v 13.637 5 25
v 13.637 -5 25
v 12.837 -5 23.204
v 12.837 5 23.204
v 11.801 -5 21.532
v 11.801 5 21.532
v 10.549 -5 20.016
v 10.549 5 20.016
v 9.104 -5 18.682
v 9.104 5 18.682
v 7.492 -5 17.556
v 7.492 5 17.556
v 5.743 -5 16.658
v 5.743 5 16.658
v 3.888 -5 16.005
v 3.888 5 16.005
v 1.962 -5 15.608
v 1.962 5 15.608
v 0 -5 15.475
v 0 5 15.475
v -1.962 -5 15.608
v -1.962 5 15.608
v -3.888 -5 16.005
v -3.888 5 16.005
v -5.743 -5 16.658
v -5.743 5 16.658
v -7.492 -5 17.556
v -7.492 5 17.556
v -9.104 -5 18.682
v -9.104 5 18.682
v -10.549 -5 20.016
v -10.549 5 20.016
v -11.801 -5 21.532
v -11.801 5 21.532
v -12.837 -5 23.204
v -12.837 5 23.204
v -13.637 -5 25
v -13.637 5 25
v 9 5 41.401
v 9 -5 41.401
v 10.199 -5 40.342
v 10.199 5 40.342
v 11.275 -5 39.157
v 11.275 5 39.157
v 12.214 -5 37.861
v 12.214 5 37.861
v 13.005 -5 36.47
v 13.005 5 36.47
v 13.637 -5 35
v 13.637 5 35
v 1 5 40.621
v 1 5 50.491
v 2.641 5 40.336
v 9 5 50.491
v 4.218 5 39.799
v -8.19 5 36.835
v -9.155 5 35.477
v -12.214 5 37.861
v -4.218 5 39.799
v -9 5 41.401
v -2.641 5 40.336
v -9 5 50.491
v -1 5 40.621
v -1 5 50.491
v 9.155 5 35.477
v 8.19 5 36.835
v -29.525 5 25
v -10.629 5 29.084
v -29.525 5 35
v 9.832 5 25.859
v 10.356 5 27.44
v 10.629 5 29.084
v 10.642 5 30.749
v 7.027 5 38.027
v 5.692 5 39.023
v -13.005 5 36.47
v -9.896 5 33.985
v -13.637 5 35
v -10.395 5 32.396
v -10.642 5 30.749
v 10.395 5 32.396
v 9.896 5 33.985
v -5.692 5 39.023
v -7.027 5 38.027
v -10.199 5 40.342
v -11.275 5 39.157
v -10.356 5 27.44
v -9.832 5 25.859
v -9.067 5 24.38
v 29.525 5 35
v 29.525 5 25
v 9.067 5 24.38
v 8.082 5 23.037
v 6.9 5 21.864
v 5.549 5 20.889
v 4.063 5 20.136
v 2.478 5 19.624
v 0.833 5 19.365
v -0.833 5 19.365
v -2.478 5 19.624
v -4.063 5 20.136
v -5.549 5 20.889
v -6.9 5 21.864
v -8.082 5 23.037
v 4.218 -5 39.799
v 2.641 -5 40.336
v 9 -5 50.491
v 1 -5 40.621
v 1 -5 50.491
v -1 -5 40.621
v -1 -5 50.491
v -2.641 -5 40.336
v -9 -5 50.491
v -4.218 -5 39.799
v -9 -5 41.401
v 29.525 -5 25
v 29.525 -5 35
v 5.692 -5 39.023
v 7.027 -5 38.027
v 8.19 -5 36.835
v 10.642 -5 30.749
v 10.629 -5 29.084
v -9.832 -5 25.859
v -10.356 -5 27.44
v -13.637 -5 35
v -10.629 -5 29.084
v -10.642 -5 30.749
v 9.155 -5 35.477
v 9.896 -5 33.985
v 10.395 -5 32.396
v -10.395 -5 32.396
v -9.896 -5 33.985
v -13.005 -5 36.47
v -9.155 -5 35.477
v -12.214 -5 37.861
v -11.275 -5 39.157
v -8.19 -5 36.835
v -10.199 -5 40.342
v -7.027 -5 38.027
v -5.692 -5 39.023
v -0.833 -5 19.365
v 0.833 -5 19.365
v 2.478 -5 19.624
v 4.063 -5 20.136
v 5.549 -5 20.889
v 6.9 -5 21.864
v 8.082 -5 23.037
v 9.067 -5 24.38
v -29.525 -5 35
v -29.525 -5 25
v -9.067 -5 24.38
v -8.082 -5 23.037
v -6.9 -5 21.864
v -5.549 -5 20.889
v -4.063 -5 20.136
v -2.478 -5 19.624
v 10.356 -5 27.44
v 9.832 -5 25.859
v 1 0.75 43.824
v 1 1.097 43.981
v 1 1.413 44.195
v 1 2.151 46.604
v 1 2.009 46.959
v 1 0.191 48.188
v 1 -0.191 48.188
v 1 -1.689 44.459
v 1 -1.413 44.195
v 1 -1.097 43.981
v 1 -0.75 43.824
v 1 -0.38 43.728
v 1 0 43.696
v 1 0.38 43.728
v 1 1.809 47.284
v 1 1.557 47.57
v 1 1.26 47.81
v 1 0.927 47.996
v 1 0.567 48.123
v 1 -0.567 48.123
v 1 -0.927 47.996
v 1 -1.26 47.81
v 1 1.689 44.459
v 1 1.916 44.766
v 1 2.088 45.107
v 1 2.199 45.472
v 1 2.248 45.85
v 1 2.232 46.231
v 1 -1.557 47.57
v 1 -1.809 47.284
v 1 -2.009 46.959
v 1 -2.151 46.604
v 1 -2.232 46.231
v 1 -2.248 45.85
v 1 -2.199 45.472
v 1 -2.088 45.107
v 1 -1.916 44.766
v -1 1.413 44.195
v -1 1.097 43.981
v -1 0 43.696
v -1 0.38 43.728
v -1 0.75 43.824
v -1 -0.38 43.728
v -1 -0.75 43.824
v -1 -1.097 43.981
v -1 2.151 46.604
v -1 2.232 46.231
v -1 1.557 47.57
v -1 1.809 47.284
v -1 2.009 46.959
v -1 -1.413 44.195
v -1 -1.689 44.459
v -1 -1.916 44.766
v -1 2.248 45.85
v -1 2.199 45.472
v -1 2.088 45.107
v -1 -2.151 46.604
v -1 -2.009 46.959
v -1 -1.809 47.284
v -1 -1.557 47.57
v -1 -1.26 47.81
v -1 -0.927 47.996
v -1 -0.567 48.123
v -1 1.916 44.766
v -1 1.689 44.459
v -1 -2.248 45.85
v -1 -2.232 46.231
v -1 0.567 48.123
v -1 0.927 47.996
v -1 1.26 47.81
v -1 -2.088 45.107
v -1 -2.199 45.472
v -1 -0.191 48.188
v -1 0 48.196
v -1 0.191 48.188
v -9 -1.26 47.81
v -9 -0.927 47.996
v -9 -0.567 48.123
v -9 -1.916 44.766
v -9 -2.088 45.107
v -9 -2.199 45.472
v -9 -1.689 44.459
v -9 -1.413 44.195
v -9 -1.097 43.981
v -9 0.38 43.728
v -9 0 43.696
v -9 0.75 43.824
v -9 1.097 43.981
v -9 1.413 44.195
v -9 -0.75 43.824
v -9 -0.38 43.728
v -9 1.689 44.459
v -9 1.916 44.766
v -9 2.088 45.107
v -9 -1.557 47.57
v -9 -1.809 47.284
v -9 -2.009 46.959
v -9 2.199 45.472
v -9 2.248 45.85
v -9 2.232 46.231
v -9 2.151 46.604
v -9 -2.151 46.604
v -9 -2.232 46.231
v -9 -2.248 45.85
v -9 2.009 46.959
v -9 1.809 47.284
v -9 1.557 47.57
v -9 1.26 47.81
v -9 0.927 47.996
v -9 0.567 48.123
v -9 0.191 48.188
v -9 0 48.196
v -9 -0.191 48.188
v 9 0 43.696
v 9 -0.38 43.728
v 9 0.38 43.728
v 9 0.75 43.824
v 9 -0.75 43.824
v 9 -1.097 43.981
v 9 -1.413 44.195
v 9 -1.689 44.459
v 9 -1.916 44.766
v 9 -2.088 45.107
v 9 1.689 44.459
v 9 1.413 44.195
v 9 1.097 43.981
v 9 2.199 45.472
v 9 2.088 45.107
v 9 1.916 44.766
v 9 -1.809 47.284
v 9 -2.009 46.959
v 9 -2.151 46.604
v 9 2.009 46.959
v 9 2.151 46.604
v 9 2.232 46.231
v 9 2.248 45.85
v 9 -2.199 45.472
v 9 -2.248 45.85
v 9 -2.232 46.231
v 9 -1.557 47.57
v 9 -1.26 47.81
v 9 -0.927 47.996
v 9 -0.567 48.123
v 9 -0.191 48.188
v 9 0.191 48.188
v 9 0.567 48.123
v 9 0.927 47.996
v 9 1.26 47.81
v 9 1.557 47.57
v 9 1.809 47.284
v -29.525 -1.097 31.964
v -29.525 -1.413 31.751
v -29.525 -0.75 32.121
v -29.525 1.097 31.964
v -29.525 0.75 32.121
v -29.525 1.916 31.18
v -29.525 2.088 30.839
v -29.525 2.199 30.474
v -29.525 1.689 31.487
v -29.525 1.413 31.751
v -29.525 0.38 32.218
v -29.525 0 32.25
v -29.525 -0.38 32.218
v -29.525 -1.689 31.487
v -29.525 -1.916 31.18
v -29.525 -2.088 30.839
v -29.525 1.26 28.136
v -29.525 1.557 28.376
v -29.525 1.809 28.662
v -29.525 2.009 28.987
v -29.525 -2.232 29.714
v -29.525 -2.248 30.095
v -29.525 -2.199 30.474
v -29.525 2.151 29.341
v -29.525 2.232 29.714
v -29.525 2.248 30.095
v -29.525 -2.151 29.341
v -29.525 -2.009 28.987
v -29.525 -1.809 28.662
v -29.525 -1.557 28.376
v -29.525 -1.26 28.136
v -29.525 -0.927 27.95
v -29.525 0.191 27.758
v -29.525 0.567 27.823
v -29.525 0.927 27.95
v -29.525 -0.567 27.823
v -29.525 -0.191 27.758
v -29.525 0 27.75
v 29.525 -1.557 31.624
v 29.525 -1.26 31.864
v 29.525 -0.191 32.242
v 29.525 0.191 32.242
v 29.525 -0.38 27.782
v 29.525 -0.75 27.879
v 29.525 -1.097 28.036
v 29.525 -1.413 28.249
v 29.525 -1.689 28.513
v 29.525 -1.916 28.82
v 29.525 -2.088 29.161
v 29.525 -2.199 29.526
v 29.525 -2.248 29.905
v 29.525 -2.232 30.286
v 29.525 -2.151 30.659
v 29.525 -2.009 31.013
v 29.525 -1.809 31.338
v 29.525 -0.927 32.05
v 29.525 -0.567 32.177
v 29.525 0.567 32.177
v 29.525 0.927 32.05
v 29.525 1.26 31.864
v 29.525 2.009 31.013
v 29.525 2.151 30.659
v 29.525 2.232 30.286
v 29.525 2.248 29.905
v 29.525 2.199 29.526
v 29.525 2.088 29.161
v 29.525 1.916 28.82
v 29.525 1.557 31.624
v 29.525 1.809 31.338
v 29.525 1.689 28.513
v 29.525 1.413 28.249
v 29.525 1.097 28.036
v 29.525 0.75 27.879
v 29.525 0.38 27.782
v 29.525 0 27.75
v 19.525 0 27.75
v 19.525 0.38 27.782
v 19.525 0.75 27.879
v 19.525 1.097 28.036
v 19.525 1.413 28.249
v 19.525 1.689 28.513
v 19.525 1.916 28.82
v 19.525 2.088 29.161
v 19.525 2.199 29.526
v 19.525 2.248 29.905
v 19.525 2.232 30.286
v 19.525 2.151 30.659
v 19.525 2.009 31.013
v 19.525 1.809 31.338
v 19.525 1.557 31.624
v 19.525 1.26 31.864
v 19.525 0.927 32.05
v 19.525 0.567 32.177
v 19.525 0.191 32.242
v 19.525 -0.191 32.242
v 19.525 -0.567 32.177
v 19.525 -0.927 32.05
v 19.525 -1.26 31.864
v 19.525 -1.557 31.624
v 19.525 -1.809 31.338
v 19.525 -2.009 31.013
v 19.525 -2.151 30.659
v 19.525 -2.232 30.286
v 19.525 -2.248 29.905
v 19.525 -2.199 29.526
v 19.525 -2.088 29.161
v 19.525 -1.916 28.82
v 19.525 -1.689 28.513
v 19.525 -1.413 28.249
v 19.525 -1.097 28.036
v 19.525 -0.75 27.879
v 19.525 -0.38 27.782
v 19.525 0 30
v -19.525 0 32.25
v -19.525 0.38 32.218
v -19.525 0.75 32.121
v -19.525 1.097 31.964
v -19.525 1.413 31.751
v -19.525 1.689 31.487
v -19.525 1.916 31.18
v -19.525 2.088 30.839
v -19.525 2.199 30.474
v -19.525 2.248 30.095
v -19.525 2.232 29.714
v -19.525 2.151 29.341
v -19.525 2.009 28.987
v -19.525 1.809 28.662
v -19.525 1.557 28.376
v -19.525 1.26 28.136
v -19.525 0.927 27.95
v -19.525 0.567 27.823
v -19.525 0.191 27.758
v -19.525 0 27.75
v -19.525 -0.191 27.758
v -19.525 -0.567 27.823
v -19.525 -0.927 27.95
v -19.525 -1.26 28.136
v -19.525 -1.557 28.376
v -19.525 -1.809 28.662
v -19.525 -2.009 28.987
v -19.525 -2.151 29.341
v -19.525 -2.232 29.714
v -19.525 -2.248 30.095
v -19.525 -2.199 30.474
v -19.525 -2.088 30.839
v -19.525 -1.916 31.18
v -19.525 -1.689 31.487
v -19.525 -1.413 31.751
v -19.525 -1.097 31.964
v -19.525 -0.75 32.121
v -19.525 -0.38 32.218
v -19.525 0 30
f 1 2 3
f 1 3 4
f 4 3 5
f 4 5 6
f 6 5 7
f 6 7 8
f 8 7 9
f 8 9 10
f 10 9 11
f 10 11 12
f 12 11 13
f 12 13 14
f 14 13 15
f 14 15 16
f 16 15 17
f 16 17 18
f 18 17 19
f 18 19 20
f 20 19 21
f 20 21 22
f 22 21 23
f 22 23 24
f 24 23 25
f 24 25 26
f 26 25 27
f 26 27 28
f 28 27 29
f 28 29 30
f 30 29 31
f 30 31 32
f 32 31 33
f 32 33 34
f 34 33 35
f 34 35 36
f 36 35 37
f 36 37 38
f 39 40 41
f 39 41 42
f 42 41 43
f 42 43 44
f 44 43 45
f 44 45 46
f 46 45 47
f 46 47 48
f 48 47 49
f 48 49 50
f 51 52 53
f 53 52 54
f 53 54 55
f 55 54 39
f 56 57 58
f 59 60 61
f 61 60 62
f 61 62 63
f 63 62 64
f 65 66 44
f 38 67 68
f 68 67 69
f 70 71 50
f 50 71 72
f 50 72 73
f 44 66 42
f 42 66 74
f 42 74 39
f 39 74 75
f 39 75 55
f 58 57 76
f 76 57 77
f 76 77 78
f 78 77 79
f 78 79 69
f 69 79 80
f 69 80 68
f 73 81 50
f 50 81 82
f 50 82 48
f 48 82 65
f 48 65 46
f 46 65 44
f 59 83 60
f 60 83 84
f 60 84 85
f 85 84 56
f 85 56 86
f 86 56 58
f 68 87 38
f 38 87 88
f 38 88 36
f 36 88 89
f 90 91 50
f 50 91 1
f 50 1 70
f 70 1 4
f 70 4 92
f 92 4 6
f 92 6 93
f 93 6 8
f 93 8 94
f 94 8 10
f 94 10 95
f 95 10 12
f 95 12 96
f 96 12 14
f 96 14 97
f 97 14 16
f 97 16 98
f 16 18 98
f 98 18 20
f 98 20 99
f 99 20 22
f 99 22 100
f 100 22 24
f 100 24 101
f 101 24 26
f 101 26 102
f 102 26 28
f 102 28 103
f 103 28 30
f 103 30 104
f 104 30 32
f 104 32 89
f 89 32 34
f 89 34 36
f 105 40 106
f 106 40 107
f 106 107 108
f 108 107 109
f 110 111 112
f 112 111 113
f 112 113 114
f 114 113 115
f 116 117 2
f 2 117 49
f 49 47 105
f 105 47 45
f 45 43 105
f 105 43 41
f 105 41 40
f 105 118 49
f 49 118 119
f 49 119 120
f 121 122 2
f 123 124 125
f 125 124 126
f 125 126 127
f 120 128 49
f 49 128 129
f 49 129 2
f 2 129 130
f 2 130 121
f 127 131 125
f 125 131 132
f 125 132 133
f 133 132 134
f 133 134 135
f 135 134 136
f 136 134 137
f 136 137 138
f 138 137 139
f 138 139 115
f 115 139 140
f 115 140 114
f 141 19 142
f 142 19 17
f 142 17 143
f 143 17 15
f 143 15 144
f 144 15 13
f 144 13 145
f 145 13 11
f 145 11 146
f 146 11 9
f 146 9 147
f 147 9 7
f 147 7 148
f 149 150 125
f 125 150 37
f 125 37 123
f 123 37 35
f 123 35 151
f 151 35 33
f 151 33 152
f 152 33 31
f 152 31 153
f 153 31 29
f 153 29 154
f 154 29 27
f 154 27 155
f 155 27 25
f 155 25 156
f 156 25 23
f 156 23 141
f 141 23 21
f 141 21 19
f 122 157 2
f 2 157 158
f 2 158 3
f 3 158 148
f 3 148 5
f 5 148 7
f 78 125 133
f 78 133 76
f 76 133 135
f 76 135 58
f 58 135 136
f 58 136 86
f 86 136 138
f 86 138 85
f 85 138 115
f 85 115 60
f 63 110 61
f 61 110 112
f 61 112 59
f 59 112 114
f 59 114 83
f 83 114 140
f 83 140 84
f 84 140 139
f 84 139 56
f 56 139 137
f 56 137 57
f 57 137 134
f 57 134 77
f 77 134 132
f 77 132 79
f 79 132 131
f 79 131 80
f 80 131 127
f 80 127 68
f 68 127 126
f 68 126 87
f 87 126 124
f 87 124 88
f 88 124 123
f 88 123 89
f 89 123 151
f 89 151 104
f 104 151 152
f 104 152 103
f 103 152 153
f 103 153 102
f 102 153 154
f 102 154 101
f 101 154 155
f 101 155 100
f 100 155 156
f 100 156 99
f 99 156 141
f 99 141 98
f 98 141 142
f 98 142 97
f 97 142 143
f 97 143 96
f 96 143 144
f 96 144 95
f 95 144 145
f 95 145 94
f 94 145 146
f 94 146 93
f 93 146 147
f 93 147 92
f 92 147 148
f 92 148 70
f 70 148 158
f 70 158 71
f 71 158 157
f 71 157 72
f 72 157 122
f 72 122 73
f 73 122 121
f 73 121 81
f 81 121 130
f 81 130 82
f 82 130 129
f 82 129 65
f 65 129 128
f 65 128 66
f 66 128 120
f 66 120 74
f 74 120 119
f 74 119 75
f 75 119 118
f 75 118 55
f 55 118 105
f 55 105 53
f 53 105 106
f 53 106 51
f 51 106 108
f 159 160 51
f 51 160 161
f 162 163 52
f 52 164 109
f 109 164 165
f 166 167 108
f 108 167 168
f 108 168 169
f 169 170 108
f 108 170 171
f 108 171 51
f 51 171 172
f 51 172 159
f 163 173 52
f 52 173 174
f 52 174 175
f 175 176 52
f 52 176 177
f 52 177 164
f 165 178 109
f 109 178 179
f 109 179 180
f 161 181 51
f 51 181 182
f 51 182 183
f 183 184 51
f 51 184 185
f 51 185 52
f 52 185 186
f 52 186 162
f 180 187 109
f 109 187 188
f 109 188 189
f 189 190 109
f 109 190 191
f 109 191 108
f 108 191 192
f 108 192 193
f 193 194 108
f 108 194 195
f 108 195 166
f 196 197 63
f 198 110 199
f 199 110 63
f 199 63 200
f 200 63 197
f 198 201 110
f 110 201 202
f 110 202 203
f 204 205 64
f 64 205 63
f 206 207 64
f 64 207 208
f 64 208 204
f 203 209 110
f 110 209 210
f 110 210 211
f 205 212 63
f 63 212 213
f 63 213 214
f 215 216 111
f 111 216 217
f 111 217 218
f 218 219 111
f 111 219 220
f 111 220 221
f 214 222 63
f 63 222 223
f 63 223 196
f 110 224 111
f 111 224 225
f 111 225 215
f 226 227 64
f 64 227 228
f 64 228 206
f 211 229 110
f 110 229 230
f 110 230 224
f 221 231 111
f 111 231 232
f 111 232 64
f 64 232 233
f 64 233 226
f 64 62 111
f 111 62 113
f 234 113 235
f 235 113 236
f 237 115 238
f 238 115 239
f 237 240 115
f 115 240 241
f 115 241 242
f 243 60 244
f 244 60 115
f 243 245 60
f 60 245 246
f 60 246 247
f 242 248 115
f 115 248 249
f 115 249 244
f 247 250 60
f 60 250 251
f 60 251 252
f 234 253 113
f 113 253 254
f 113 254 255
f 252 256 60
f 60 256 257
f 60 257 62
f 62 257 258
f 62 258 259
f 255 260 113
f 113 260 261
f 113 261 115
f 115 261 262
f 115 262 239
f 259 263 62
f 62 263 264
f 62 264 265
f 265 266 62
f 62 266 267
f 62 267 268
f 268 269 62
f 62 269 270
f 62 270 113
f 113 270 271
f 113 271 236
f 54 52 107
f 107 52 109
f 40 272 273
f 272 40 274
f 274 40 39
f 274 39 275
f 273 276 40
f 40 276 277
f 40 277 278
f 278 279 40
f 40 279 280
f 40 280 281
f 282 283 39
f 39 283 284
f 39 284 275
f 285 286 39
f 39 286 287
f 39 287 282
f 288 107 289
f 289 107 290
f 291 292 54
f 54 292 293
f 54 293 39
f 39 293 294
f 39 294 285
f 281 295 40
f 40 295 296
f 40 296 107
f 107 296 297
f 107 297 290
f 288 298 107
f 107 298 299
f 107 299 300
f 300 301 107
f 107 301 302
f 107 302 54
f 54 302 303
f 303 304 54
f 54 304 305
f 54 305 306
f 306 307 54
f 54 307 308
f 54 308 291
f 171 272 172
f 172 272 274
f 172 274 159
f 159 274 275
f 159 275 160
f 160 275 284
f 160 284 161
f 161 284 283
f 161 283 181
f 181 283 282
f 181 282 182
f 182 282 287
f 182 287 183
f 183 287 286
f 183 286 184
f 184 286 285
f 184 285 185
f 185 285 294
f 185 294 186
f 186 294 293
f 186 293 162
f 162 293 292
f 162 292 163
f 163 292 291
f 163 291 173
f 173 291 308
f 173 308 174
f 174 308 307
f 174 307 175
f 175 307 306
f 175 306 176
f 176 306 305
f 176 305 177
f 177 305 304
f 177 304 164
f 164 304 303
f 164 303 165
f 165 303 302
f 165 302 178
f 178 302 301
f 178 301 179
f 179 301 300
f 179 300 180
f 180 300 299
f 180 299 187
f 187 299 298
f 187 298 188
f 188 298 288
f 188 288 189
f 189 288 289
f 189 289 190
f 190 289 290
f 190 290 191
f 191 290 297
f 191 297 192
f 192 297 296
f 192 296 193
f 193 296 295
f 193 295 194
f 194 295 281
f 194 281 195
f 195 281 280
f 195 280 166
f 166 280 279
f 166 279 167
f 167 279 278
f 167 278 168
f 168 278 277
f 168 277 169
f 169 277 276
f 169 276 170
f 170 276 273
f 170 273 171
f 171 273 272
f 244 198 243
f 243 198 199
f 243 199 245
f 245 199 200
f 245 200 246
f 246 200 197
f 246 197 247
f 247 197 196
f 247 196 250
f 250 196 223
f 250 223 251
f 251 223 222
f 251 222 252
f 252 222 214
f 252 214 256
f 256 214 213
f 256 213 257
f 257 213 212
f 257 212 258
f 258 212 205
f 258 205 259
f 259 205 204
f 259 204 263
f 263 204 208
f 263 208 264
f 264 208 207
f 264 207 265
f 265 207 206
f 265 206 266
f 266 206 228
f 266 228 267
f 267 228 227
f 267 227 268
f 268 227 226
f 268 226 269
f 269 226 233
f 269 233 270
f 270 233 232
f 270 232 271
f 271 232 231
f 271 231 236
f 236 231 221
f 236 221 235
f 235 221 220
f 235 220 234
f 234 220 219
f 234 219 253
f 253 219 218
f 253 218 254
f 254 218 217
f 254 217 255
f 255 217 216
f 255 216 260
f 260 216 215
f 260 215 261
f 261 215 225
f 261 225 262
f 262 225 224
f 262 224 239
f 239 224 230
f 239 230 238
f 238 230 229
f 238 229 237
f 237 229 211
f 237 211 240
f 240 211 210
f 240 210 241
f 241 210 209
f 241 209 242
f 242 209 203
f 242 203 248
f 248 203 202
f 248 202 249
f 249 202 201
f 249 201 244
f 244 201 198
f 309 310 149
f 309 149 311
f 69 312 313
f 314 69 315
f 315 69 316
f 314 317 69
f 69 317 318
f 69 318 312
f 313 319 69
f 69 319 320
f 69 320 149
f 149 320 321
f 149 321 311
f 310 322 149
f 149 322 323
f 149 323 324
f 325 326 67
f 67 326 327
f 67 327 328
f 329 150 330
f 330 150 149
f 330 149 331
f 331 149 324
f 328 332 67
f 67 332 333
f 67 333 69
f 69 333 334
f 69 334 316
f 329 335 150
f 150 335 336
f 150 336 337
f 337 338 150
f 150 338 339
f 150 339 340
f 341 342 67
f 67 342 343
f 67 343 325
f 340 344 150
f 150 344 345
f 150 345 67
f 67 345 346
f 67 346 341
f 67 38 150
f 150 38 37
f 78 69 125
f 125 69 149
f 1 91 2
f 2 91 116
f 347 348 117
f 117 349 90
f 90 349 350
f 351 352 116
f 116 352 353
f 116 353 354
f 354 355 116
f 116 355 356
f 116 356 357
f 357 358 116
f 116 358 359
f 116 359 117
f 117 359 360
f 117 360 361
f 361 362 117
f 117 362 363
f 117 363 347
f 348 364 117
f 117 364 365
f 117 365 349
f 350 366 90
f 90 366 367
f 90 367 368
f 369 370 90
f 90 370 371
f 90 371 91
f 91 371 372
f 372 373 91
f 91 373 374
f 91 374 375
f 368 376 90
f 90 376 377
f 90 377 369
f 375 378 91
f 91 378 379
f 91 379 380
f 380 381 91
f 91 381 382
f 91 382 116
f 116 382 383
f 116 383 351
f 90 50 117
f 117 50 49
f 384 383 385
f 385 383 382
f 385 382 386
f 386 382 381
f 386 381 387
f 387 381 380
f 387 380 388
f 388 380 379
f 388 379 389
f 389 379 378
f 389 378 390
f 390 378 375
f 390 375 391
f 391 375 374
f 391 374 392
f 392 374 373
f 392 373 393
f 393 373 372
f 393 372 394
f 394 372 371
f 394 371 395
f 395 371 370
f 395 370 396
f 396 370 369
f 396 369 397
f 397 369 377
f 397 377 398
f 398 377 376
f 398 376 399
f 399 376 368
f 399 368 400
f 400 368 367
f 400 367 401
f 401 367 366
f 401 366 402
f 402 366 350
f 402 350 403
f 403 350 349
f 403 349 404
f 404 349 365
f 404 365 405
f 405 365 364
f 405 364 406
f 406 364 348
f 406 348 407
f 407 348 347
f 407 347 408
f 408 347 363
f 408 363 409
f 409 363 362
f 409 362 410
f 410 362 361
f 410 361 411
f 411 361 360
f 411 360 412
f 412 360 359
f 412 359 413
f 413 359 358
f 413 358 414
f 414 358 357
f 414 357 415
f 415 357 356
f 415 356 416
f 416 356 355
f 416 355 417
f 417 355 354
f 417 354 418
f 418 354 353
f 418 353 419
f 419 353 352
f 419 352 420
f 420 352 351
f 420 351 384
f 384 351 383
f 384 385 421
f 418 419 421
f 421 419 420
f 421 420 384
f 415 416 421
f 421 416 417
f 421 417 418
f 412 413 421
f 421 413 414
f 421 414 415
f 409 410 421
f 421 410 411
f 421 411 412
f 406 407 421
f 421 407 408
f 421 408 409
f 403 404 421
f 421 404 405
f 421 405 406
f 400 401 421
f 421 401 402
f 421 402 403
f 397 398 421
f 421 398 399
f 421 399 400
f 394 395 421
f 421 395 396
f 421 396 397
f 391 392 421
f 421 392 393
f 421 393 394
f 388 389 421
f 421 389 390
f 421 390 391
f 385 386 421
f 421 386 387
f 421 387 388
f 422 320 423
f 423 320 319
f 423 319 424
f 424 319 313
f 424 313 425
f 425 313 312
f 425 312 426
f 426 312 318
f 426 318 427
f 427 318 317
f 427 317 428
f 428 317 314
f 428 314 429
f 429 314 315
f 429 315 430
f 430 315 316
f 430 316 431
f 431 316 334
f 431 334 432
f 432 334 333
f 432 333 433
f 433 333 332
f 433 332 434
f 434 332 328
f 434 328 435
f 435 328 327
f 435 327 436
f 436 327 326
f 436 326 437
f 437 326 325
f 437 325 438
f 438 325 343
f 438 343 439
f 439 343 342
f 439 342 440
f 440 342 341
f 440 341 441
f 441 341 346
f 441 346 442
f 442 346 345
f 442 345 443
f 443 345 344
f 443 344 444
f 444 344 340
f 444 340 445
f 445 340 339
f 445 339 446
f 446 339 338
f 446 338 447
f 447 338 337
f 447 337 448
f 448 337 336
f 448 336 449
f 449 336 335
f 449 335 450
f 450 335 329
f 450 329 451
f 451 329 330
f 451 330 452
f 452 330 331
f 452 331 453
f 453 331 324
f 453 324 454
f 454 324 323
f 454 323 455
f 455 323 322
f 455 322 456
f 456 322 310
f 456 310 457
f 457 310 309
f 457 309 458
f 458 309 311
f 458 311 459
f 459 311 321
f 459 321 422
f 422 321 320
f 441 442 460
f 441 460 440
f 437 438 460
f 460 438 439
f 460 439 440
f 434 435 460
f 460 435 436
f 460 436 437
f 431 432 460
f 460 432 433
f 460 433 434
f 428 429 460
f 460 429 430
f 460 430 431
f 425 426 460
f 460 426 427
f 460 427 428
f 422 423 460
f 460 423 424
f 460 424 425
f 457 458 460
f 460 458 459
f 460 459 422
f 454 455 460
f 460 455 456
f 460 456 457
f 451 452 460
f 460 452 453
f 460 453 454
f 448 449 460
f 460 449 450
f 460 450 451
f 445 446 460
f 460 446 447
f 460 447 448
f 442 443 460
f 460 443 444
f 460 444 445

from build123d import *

# Parameters (mm, degrees)
CROQUIS1_R              = 10.668000000000001
SALIENTE_EXTRUIR1_DEPTH = 5
CORTAR_EXTRUIR1_REACH   = 55.921
CROQUIS2_R              = 2.249999999999999
SALIENTE_EXTRUIR2_DEPTH = 2.5
CORTAR_EXTRUIR5_DEPTH   = 55.61204651906025
SALIENTE_EXTRUIR3_DEPTH = 10
CORTAR_EXTRUIR6_REACH   = 65.994
CROQUIS9_R              = 2.250000000000002
CORTAR_EXTRUIR7_DEPTH   = 60.57595316665593
SALIENTE_EXTRUIR4_DEPTH = 10
CROQUIS12_R             = 2.249999999999999
CORTAR_EXTRUIR8_DEPTH   = 10


with BuildPart() as part:
    # Croquis1 → Saliente-Extruir1 (new, symmetric)
    with BuildSketch(Plane(origin=(0, 0, 0), x_dir=(1, 0, 0), z_dir=(0, 1, 0))):
        with BuildLine():
            Line((30, 1.163e-14), (-30, -6.74e-15))
            Line((-30, -6.74e-15), (-29.999999999999993, -10.000000000000007))
            Line((-29.999999999999993, -10.000000000000007), (-4.999999999999997, -9.999999999999998))
            Line((-4.999999999999997, -9.999999999999998), (-4.999999999999997, -16.362711963150442))
            ThreePointArc((-4.999999999999997, -16.362711963150442), (1.01e-15, -44.525000000000006), (5.000000000000002, -16.362711963150442))
            Line((5.000000000000002, -16.362711963150442), (5.000000000000001, -9.999999999999993))
            Line((5.000000000000001, -9.999999999999993), (30, -9.999999999999988))
            Line((30, -9.999999999999988), (30, 1.163e-14))
        make_face()
        with Locations(Location((3.67e-15, -30, 0), (0, 0, 270))):
            Circle(CROQUIS1_R, mode=Mode.SUBTRACT)
    extrude(amount=SALIENTE_EXTRUIR1_DEPTH, both=True)

    # Croquis2 → Cortar-Extruir1 (cut, up to next)
    with BuildSketch(Plane(origin=(0, 0, 0), x_dir=(-1, 0, 3.1e-16), z_dir=(-3.1e-16, 0, -1)), mode=Mode.PRIVATE) as cortar_extruir1_sk1:
        with Locations((24.999999999999996, 0)):
            Circle(CROQUIS2_R)
    cortar_extruir1_tool1 = extrude(cortar_extruir1_sk1.sketch, amount=-CORTAR_EXTRUIR1_REACH, mode=Mode.PRIVATE) & part.part
    # Croquis2 → Cortar-Extruir1 (cut, up to next)
    with BuildSketch(Plane(origin=(0, 0, 0), x_dir=(-1, 0, 3.1e-16), z_dir=(-3.1e-16, 0, -1)), mode=Mode.PRIVATE) as cortar_extruir1_sk2:
        with Locations((-24.999999999999996, 0)):
            Circle(CROQUIS2_R)
    cortar_extruir1_tool2 = extrude(cortar_extruir1_sk2.sketch, amount=-CORTAR_EXTRUIR1_REACH, mode=Mode.PRIVATE) & part.part
    add(cortar_extruir1_tool1.solids().sort_by_distance((-25, 0, 0))[0], mode=Mode.SUBTRACT)
    add(cortar_extruir1_tool2.solids().sort_by_distance((25, 0, 0))[0], mode=Mode.SUBTRACT)

    # Croquis3 → Saliente-Extruir2 (add, symmetric)
    with BuildSketch(Plane(origin=(0, 0, 0), x_dir=(1, 0, 0), z_dir=(0, 1, 0))):
        with BuildLine():
            ThreePointArc((-4.999999999999991, -16.362711963150442), (-12.83879356101969, -23.207282951754927), (-14.087370599725464, -33.53858934972546))
            Line((-14.087370599725464, -33.53858934972546), (-19.999999999999996, -10.000000000000007))
            Line((-19.999999999999996, -10.000000000000007), (-4.999999999999997, -9.999999999999998))
            Line((-4.999999999999997, -9.999999999999998), (-4.999999999999991, -16.362711963150442))
        make_face()
        with BuildLine():
            Line((4.999999999999997, -9.999999999999998), (4.999999999999991, -16.362711963150442))
            ThreePointArc((4.999999999999991, -16.362711963150442), (12.838793561019703, -23.20728295175493), (14.087370599725464, -33.53858934972546))
            Line((14.087370599725464, -33.53858934972546), (19.999999999999996, -10.000000000000007))
            Line((19.999999999999996, -10.000000000000007), (4.999999999999997, -9.999999999999998))
        make_face()
    extrude(amount=SALIENTE_EXTRUIR2_DEPTH, both=True)

    # Croquis7 → Cortar-Extruir5 (cut, through all)
    with BuildSketch(Plane(origin=(0, 5, 0), x_dir=(1, 0, 0), z_dir=(0, 1, 0))):
        Polygon((1.0000000000000004, -46.5965), (-0.9999999999999998, -46.5965), (-0.9999999999999996, -38.5965), (1.0000000000000004, -38.5965), align=None)
    extrude(amount=-CORTAR_EXTRUIR5_DEPTH, mode=Mode.SUBTRACT)

    # Croquis8 → Saliente-Extruir3 (add)
    with BuildSketch(Plane(origin=(0, 5, 0), x_dir=(1, 0, 0), z_dir=(0, 1, 0))):
        with BuildLine():
            Line((-0.9999999999999998, -44.49053570438305), (-0.9999999999999989, -50.49053570438305))
            Line((-0.9999999999999989, -50.49053570438305), (-9, -50.490535704383056))
            Line((-9, -50.490535704383056), (-8.999999999999998, -41.400685286420284))
            ThreePointArc((-8.999999999999998, -41.400685286420284), (-5.233239331556143, -43.5494956031084), (-0.9999999999999998, -44.49053570438305))
        make_face()
        with BuildLine():
            Line((9, -50.490535704383056), (8.999999999999998, -41.400685286420284))
            ThreePointArc((8.999999999999998, -41.400685286420284), (5.23323933155614, -43.5494956031084), (0.9999999999999996, -44.49053570438305))
            Line((0.9999999999999996, -44.49053570438305), (0.9999999999999989, -50.49053570438305))
            Line((0.9999999999999989, -50.49053570438305), (9, -50.490535704383056))
        make_face()
    extrude(amount=-SALIENTE_EXTRUIR3_DEPTH)

    # Cortar-Extruir6: up to this face of the body (flat: up to its plane)
    cortar_extruir6_end = Plane(part.part.faces().sort_by_distance((-9, 0, 45.945610495))[0])
    # Croquis9 → Cortar-Extruir6 (cut, up to the picked face)
    with BuildSketch(Plane(origin=(8.99999999999999, 0, -1.72e-15), x_dir=(0, 0, -1), z_dir=(1, 0, 0)), mode=Mode.PRIVATE) as cortar_extruir6_sk1:
        with Locations((-45.945610495401674, 0)):
            Circle(CROQUIS9_R)
    cortar_extruir6_tool1 = split(extrude(cortar_extruir6_sk1.sketch, amount=-CORTAR_EXTRUIR6_REACH, mode=Mode.PRIVATE), bisect_by=cortar_extruir6_end, keep=Keep.BOTH, mode=Mode.PRIVATE)
    add(cortar_extruir6_tool1.solids().sort_by(Axis((9, 0, 45.94561), (-1, 0, 0)))[0], mode=Mode.SUBTRACT)

    # Croquis10 → Cortar-Extruir7 (cut, through all)
    with BuildSketch(Plane(origin=(0, 5, 0), x_dir=(1, 0, 0), z_dir=(0, 1, 0))):
        with BuildLine():
            ThreePointArc((-4.999999999999991, -16.362711963150442), (4.56e-15, -15.475), (5, -16.362711963150446))
            Line((5, -16.362711963150446), (5.000000000000001, -9.999999999999993))
            Line((5.000000000000001, -9.999999999999993), (30, -9.999999999999988))
            Line((30, -9.999999999999988), (30, 1.163e-14))
            Line((30, 1.163e-14), (-30, -6.74e-15))
            Line((-30, -6.74e-15), (-29.999999999999993, -10.000000000000007))
            Line((-29.999999999999993, -10.000000000000007), (-4.999999999999997, -9.999999999999998))
            Line((-4.999999999999997, -9.999999999999998), (-4.999999999999991, -16.362711963150442))
        make_face()
        with BuildLine():
            ThreePointArc((-14.087370599725464, -33.53858934972547), (-12.838793561019695, -23.207282951754934), (-4.999999999999991, -16.362711963150442))
            Line((-4.999999999999991, -16.362711963150442), (-4.999999999999997, -9.999999999999998))
            Line((-4.999999999999997, -9.999999999999998), (-20, -10.000000000000004))
            Line((-20, -10.000000000000004), (-14.087370599725462, -33.53858934972547))
        make_face()
        with BuildLine():
            Line((20.000000000000004, -9.99999999999999), (5, -9.999999999999993))
            Line((5.000000000000001, -9.999999999999993), (5.000000000000002, -16.362711963150442))
            ThreePointArc((5, -16.36271196315044), (12.838793561019697, -23.207282951754934), (14.08737059972547, -33.53858934972546))
            Line((14.087370599725467, -33.53858934972546), (20.000000000000004, -9.99999999999999))
        make_face()
    extrude(amount=-CORTAR_EXTRUIR7_DEPTH, mode=Mode.SUBTRACT)

    # Croquis11 → Saliente-Extruir4 (add)
    with BuildSketch(Plane(origin=(0, 5, 0), x_dir=(1, 0, 0), z_dir=(0, 1, 0))):
        with BuildLine():
            Line((29.525000000000002, -34.99999999999999), (29.525, -25))
            Line((29.525, -25), (13.637288036849554, -25))
            ThreePointArc((13.637288036849554, -25), (14.525, -30), (13.637288036849556, -35))
            Line((13.637288036849556, -35), (29.525000000000002, -34.99999999999999))
        make_face()
        with BuildLine():
            Line((-29.525000000000002, -34.99999999999999), (-13.637288036849556, -35))
            ThreePointArc((-13.637288036849556, -35), (-14.525, -30.000000000000004), (-13.637288036849554, -25))
            Line((-13.637288036849554, -25), (-29.525, -25))
            Line((-29.525, -25), (-29.525000000000002, -34.99999999999999))
        make_face()
    extrude(amount=-SALIENTE_EXTRUIR4_DEPTH)

    # Croquis12 → Cortar-Extruir8 (cut)
    with BuildSketch(Plane(origin=(29.524999999999988, 0, -1.024e-14), x_dir=(-3.5e-16, 0, -1), z_dir=(1, 0, -3.5e-16))):
        with Locations((-30.000000000000007, -8.7e-16)):
            Circle(CROQUIS12_R)
    cortar_extruir8 = extrude(amount=-CORTAR_EXTRUIR8_DEPTH, mode=Mode.SUBTRACT)

    # Simetría1: Cortar-Extruir8 across plane
    add(cortar_extruir8.mirror(Plane(origin=(0, 0, 0), x_dir=(0, 0, 1), z_dir=(1, 0, 0))), mode=Mode.SUBTRACT)


solid = part.part
